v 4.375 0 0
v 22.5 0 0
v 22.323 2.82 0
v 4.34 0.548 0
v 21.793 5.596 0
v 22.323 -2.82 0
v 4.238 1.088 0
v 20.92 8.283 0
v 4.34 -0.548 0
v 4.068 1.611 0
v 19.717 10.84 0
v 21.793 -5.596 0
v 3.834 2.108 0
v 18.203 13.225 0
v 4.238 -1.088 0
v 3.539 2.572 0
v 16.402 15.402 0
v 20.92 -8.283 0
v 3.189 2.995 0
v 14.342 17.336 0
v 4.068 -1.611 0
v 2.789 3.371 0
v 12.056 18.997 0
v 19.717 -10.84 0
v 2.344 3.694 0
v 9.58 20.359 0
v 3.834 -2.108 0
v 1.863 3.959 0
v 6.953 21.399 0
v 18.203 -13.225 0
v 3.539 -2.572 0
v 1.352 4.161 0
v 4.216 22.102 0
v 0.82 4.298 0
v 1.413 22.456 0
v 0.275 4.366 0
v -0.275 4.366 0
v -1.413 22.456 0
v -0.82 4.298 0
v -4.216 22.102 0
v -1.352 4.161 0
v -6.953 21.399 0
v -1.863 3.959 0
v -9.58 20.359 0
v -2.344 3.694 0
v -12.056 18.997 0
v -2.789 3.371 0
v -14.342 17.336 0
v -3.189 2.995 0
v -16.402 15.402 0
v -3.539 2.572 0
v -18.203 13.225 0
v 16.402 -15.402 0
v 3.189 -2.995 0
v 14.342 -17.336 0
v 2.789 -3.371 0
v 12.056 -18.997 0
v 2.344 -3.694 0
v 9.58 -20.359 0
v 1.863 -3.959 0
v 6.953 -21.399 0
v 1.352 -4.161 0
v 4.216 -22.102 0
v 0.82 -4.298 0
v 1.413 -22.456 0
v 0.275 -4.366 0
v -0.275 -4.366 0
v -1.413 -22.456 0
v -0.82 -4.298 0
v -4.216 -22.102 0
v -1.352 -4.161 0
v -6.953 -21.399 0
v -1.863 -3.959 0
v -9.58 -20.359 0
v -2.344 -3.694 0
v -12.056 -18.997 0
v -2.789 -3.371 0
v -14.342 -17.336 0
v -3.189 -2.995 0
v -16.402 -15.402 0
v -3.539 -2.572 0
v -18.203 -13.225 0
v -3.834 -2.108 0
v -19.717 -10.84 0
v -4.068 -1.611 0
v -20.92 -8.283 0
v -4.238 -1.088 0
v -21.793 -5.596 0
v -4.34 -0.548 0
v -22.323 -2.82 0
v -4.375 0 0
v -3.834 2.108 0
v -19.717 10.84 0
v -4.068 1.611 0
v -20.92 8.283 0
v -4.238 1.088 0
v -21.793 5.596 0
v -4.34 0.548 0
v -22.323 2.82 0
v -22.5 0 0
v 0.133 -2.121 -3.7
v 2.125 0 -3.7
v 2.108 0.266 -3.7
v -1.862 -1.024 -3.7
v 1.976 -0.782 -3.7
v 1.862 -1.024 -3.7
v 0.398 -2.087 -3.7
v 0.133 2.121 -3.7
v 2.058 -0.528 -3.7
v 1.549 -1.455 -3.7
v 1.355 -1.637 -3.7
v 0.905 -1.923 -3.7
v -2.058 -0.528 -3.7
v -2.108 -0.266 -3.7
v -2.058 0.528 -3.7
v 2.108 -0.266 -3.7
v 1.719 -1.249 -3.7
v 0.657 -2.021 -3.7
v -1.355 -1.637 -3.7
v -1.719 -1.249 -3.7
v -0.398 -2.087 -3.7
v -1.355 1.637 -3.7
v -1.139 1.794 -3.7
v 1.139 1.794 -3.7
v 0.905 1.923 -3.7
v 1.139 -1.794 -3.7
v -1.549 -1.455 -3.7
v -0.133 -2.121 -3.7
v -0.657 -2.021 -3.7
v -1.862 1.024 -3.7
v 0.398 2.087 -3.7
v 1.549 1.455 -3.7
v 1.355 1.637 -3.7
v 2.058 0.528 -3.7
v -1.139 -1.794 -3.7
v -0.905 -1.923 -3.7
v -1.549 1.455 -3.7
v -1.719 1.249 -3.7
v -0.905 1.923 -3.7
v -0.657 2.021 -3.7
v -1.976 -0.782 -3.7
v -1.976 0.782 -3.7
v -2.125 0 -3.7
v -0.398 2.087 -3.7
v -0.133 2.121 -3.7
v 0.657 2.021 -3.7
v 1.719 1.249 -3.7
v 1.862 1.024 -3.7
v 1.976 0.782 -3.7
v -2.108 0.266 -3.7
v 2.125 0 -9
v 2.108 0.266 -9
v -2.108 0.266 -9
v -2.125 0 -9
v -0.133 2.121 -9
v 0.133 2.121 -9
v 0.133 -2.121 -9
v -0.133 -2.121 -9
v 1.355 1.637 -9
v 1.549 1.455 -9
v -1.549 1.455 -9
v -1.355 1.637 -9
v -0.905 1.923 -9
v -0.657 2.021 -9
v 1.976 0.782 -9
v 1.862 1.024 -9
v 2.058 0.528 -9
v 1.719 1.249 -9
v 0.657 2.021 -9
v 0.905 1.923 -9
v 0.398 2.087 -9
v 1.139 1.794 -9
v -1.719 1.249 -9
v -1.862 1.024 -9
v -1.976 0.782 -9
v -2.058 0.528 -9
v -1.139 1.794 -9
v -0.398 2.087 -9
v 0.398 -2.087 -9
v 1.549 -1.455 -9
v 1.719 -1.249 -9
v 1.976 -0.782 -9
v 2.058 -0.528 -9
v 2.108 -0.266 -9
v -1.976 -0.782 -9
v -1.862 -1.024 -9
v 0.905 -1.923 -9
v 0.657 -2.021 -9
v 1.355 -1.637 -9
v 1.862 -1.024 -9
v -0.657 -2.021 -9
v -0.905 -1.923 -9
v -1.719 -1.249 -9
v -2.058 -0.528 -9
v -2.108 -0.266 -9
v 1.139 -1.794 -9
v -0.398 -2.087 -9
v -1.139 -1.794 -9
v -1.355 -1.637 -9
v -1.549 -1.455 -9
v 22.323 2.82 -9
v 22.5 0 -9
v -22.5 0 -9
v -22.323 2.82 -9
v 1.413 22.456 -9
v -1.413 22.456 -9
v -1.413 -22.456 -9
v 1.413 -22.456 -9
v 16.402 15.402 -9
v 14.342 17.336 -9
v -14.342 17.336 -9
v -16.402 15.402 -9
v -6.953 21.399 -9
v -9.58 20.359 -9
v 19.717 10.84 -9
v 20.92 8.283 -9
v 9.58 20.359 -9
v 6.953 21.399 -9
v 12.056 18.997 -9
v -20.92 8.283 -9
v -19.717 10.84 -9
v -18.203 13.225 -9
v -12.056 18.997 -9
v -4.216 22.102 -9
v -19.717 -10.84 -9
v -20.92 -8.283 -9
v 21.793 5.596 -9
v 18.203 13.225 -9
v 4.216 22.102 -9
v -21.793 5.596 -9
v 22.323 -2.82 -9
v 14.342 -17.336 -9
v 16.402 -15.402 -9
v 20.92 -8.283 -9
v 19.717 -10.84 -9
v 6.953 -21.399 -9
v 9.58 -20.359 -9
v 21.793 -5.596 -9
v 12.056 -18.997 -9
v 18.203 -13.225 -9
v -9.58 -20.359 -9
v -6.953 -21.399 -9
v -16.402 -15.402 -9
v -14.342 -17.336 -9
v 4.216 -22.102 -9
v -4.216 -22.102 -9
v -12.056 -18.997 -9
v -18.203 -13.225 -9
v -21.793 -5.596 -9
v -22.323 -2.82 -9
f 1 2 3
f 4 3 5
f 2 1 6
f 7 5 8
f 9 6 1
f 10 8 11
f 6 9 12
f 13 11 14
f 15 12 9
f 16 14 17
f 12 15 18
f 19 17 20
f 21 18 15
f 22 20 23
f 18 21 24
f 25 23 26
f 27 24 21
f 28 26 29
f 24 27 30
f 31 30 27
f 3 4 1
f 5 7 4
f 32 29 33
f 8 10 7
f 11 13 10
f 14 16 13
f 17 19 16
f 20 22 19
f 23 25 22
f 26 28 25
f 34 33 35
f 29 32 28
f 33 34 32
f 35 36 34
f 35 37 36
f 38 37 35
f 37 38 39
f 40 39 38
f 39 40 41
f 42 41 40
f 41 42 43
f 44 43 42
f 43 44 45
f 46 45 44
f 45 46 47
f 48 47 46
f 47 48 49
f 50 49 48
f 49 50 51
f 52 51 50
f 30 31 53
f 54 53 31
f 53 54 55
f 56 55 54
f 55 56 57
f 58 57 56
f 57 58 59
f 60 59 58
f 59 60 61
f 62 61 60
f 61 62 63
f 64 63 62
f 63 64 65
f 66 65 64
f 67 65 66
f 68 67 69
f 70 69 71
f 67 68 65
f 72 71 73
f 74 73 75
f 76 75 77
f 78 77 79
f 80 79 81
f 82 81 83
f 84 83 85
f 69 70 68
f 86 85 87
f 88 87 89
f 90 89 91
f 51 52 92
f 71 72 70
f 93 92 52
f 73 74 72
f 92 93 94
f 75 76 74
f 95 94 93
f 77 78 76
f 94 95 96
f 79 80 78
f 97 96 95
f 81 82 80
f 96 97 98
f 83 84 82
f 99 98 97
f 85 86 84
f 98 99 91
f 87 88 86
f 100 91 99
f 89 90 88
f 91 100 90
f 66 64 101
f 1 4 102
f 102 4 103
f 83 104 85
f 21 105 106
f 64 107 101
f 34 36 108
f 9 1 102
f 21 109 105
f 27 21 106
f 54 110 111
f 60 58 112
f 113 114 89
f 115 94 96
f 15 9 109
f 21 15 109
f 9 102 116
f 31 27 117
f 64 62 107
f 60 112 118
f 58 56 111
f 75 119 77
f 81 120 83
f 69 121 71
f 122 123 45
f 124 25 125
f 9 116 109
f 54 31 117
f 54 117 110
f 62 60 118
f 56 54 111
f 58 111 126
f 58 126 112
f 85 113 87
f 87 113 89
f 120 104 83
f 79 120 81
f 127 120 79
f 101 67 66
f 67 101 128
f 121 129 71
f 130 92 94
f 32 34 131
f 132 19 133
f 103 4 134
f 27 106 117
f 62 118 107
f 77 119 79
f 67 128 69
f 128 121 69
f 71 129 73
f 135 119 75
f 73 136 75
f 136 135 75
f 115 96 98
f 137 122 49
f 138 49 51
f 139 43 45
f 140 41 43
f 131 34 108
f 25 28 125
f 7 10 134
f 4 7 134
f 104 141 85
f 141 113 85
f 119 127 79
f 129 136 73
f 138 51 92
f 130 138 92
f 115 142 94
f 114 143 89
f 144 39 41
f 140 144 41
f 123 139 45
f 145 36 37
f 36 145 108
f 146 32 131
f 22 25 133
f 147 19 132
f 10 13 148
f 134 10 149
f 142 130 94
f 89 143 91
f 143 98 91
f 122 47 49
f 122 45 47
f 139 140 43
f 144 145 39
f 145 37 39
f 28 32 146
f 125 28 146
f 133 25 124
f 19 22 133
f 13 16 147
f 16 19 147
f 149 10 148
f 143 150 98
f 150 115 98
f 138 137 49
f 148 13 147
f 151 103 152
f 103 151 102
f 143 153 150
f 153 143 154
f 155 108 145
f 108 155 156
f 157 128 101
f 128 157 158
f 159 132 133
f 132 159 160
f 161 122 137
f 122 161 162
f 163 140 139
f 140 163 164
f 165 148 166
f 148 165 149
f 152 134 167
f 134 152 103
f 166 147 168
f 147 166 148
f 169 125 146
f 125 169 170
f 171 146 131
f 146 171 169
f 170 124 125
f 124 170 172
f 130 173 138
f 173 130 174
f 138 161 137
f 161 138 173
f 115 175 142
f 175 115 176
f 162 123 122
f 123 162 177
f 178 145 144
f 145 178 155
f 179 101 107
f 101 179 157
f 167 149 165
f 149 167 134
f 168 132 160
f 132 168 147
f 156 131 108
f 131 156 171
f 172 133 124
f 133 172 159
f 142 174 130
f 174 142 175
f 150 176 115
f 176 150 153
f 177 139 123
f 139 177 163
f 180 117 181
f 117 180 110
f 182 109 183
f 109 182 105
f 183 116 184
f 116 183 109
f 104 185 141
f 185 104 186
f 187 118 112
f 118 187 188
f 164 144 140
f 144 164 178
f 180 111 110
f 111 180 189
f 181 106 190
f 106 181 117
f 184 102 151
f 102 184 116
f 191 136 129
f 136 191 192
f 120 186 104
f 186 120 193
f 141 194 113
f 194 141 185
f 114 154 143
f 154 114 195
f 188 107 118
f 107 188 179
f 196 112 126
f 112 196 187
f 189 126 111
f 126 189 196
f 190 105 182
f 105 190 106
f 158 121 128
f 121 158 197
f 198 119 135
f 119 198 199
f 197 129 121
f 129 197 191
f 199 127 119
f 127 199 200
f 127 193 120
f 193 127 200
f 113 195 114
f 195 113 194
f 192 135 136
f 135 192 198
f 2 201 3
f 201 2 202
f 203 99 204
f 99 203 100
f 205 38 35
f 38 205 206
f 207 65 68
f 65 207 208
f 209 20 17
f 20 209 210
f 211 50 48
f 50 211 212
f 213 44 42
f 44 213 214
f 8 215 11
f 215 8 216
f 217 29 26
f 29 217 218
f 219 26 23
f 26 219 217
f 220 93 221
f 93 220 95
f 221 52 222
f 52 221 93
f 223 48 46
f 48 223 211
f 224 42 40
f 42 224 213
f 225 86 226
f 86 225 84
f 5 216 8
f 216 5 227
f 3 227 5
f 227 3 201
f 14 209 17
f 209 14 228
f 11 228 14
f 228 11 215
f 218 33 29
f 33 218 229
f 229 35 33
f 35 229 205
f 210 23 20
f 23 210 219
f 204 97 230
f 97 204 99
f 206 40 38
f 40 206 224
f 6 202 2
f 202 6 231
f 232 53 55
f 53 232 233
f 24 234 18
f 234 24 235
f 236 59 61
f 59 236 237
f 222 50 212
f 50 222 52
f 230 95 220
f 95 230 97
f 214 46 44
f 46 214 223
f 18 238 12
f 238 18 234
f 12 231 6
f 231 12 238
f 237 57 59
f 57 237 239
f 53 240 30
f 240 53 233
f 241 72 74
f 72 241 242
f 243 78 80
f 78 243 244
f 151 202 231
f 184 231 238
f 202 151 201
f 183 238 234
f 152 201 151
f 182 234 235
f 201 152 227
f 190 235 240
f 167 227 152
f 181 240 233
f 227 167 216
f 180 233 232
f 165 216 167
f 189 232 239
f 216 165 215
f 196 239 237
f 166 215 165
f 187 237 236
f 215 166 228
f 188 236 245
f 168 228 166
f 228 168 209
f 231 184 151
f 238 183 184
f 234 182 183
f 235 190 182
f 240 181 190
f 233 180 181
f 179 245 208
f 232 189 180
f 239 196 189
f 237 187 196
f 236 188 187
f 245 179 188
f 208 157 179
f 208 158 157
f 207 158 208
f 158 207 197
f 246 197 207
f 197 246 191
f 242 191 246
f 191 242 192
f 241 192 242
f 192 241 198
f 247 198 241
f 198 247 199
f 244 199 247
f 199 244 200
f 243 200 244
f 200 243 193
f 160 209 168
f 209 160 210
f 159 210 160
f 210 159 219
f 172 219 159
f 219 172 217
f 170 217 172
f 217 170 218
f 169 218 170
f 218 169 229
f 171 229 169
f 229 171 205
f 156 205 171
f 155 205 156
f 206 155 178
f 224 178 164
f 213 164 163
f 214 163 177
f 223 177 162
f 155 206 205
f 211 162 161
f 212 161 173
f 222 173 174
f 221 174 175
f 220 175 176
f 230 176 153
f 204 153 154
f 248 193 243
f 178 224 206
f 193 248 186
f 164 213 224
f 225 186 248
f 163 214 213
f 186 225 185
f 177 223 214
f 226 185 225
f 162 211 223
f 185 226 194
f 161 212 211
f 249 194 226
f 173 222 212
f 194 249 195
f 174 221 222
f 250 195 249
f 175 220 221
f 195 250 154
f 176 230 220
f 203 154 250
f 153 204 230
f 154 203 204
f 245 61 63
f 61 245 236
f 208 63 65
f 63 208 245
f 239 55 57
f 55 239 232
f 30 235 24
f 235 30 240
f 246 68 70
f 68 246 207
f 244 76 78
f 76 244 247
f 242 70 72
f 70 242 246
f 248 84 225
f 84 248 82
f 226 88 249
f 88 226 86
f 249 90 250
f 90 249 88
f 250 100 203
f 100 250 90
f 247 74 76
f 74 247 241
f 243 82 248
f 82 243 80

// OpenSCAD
$fn = 50;


difference() {
	union() {
		translate(v = [0, 0, -9.0000000000]) {
			cylinder(h = 9, r = 22.5000000000);
		}
	}
	union() {
		translate(v = [0, 0, 0]) {
			rotate(a = [0, 0, 0]) {
				difference() {
					union() {
						translate(v = [0, 0, -12.0000000000]) {
							cylinder(h = 12, r = 2.0000000000);
						}
						translate(v = [0, 0, -3.7000000000]) {
							cylinder(h = 3.7000000000, r1 = 2.1250000000, r2 = 4.3750000000);
						}
						translate(v = [0, 0, -12.0000000000]) {
							cylinder(h = 12, r = 2.1250000000);
						}
						translate(v = [0, 0, -12.0000000000]) {
							cylinder(h = 12, r = 2.0000000000);
						}
					}
					union();
				}
			}
		}
	}
}
